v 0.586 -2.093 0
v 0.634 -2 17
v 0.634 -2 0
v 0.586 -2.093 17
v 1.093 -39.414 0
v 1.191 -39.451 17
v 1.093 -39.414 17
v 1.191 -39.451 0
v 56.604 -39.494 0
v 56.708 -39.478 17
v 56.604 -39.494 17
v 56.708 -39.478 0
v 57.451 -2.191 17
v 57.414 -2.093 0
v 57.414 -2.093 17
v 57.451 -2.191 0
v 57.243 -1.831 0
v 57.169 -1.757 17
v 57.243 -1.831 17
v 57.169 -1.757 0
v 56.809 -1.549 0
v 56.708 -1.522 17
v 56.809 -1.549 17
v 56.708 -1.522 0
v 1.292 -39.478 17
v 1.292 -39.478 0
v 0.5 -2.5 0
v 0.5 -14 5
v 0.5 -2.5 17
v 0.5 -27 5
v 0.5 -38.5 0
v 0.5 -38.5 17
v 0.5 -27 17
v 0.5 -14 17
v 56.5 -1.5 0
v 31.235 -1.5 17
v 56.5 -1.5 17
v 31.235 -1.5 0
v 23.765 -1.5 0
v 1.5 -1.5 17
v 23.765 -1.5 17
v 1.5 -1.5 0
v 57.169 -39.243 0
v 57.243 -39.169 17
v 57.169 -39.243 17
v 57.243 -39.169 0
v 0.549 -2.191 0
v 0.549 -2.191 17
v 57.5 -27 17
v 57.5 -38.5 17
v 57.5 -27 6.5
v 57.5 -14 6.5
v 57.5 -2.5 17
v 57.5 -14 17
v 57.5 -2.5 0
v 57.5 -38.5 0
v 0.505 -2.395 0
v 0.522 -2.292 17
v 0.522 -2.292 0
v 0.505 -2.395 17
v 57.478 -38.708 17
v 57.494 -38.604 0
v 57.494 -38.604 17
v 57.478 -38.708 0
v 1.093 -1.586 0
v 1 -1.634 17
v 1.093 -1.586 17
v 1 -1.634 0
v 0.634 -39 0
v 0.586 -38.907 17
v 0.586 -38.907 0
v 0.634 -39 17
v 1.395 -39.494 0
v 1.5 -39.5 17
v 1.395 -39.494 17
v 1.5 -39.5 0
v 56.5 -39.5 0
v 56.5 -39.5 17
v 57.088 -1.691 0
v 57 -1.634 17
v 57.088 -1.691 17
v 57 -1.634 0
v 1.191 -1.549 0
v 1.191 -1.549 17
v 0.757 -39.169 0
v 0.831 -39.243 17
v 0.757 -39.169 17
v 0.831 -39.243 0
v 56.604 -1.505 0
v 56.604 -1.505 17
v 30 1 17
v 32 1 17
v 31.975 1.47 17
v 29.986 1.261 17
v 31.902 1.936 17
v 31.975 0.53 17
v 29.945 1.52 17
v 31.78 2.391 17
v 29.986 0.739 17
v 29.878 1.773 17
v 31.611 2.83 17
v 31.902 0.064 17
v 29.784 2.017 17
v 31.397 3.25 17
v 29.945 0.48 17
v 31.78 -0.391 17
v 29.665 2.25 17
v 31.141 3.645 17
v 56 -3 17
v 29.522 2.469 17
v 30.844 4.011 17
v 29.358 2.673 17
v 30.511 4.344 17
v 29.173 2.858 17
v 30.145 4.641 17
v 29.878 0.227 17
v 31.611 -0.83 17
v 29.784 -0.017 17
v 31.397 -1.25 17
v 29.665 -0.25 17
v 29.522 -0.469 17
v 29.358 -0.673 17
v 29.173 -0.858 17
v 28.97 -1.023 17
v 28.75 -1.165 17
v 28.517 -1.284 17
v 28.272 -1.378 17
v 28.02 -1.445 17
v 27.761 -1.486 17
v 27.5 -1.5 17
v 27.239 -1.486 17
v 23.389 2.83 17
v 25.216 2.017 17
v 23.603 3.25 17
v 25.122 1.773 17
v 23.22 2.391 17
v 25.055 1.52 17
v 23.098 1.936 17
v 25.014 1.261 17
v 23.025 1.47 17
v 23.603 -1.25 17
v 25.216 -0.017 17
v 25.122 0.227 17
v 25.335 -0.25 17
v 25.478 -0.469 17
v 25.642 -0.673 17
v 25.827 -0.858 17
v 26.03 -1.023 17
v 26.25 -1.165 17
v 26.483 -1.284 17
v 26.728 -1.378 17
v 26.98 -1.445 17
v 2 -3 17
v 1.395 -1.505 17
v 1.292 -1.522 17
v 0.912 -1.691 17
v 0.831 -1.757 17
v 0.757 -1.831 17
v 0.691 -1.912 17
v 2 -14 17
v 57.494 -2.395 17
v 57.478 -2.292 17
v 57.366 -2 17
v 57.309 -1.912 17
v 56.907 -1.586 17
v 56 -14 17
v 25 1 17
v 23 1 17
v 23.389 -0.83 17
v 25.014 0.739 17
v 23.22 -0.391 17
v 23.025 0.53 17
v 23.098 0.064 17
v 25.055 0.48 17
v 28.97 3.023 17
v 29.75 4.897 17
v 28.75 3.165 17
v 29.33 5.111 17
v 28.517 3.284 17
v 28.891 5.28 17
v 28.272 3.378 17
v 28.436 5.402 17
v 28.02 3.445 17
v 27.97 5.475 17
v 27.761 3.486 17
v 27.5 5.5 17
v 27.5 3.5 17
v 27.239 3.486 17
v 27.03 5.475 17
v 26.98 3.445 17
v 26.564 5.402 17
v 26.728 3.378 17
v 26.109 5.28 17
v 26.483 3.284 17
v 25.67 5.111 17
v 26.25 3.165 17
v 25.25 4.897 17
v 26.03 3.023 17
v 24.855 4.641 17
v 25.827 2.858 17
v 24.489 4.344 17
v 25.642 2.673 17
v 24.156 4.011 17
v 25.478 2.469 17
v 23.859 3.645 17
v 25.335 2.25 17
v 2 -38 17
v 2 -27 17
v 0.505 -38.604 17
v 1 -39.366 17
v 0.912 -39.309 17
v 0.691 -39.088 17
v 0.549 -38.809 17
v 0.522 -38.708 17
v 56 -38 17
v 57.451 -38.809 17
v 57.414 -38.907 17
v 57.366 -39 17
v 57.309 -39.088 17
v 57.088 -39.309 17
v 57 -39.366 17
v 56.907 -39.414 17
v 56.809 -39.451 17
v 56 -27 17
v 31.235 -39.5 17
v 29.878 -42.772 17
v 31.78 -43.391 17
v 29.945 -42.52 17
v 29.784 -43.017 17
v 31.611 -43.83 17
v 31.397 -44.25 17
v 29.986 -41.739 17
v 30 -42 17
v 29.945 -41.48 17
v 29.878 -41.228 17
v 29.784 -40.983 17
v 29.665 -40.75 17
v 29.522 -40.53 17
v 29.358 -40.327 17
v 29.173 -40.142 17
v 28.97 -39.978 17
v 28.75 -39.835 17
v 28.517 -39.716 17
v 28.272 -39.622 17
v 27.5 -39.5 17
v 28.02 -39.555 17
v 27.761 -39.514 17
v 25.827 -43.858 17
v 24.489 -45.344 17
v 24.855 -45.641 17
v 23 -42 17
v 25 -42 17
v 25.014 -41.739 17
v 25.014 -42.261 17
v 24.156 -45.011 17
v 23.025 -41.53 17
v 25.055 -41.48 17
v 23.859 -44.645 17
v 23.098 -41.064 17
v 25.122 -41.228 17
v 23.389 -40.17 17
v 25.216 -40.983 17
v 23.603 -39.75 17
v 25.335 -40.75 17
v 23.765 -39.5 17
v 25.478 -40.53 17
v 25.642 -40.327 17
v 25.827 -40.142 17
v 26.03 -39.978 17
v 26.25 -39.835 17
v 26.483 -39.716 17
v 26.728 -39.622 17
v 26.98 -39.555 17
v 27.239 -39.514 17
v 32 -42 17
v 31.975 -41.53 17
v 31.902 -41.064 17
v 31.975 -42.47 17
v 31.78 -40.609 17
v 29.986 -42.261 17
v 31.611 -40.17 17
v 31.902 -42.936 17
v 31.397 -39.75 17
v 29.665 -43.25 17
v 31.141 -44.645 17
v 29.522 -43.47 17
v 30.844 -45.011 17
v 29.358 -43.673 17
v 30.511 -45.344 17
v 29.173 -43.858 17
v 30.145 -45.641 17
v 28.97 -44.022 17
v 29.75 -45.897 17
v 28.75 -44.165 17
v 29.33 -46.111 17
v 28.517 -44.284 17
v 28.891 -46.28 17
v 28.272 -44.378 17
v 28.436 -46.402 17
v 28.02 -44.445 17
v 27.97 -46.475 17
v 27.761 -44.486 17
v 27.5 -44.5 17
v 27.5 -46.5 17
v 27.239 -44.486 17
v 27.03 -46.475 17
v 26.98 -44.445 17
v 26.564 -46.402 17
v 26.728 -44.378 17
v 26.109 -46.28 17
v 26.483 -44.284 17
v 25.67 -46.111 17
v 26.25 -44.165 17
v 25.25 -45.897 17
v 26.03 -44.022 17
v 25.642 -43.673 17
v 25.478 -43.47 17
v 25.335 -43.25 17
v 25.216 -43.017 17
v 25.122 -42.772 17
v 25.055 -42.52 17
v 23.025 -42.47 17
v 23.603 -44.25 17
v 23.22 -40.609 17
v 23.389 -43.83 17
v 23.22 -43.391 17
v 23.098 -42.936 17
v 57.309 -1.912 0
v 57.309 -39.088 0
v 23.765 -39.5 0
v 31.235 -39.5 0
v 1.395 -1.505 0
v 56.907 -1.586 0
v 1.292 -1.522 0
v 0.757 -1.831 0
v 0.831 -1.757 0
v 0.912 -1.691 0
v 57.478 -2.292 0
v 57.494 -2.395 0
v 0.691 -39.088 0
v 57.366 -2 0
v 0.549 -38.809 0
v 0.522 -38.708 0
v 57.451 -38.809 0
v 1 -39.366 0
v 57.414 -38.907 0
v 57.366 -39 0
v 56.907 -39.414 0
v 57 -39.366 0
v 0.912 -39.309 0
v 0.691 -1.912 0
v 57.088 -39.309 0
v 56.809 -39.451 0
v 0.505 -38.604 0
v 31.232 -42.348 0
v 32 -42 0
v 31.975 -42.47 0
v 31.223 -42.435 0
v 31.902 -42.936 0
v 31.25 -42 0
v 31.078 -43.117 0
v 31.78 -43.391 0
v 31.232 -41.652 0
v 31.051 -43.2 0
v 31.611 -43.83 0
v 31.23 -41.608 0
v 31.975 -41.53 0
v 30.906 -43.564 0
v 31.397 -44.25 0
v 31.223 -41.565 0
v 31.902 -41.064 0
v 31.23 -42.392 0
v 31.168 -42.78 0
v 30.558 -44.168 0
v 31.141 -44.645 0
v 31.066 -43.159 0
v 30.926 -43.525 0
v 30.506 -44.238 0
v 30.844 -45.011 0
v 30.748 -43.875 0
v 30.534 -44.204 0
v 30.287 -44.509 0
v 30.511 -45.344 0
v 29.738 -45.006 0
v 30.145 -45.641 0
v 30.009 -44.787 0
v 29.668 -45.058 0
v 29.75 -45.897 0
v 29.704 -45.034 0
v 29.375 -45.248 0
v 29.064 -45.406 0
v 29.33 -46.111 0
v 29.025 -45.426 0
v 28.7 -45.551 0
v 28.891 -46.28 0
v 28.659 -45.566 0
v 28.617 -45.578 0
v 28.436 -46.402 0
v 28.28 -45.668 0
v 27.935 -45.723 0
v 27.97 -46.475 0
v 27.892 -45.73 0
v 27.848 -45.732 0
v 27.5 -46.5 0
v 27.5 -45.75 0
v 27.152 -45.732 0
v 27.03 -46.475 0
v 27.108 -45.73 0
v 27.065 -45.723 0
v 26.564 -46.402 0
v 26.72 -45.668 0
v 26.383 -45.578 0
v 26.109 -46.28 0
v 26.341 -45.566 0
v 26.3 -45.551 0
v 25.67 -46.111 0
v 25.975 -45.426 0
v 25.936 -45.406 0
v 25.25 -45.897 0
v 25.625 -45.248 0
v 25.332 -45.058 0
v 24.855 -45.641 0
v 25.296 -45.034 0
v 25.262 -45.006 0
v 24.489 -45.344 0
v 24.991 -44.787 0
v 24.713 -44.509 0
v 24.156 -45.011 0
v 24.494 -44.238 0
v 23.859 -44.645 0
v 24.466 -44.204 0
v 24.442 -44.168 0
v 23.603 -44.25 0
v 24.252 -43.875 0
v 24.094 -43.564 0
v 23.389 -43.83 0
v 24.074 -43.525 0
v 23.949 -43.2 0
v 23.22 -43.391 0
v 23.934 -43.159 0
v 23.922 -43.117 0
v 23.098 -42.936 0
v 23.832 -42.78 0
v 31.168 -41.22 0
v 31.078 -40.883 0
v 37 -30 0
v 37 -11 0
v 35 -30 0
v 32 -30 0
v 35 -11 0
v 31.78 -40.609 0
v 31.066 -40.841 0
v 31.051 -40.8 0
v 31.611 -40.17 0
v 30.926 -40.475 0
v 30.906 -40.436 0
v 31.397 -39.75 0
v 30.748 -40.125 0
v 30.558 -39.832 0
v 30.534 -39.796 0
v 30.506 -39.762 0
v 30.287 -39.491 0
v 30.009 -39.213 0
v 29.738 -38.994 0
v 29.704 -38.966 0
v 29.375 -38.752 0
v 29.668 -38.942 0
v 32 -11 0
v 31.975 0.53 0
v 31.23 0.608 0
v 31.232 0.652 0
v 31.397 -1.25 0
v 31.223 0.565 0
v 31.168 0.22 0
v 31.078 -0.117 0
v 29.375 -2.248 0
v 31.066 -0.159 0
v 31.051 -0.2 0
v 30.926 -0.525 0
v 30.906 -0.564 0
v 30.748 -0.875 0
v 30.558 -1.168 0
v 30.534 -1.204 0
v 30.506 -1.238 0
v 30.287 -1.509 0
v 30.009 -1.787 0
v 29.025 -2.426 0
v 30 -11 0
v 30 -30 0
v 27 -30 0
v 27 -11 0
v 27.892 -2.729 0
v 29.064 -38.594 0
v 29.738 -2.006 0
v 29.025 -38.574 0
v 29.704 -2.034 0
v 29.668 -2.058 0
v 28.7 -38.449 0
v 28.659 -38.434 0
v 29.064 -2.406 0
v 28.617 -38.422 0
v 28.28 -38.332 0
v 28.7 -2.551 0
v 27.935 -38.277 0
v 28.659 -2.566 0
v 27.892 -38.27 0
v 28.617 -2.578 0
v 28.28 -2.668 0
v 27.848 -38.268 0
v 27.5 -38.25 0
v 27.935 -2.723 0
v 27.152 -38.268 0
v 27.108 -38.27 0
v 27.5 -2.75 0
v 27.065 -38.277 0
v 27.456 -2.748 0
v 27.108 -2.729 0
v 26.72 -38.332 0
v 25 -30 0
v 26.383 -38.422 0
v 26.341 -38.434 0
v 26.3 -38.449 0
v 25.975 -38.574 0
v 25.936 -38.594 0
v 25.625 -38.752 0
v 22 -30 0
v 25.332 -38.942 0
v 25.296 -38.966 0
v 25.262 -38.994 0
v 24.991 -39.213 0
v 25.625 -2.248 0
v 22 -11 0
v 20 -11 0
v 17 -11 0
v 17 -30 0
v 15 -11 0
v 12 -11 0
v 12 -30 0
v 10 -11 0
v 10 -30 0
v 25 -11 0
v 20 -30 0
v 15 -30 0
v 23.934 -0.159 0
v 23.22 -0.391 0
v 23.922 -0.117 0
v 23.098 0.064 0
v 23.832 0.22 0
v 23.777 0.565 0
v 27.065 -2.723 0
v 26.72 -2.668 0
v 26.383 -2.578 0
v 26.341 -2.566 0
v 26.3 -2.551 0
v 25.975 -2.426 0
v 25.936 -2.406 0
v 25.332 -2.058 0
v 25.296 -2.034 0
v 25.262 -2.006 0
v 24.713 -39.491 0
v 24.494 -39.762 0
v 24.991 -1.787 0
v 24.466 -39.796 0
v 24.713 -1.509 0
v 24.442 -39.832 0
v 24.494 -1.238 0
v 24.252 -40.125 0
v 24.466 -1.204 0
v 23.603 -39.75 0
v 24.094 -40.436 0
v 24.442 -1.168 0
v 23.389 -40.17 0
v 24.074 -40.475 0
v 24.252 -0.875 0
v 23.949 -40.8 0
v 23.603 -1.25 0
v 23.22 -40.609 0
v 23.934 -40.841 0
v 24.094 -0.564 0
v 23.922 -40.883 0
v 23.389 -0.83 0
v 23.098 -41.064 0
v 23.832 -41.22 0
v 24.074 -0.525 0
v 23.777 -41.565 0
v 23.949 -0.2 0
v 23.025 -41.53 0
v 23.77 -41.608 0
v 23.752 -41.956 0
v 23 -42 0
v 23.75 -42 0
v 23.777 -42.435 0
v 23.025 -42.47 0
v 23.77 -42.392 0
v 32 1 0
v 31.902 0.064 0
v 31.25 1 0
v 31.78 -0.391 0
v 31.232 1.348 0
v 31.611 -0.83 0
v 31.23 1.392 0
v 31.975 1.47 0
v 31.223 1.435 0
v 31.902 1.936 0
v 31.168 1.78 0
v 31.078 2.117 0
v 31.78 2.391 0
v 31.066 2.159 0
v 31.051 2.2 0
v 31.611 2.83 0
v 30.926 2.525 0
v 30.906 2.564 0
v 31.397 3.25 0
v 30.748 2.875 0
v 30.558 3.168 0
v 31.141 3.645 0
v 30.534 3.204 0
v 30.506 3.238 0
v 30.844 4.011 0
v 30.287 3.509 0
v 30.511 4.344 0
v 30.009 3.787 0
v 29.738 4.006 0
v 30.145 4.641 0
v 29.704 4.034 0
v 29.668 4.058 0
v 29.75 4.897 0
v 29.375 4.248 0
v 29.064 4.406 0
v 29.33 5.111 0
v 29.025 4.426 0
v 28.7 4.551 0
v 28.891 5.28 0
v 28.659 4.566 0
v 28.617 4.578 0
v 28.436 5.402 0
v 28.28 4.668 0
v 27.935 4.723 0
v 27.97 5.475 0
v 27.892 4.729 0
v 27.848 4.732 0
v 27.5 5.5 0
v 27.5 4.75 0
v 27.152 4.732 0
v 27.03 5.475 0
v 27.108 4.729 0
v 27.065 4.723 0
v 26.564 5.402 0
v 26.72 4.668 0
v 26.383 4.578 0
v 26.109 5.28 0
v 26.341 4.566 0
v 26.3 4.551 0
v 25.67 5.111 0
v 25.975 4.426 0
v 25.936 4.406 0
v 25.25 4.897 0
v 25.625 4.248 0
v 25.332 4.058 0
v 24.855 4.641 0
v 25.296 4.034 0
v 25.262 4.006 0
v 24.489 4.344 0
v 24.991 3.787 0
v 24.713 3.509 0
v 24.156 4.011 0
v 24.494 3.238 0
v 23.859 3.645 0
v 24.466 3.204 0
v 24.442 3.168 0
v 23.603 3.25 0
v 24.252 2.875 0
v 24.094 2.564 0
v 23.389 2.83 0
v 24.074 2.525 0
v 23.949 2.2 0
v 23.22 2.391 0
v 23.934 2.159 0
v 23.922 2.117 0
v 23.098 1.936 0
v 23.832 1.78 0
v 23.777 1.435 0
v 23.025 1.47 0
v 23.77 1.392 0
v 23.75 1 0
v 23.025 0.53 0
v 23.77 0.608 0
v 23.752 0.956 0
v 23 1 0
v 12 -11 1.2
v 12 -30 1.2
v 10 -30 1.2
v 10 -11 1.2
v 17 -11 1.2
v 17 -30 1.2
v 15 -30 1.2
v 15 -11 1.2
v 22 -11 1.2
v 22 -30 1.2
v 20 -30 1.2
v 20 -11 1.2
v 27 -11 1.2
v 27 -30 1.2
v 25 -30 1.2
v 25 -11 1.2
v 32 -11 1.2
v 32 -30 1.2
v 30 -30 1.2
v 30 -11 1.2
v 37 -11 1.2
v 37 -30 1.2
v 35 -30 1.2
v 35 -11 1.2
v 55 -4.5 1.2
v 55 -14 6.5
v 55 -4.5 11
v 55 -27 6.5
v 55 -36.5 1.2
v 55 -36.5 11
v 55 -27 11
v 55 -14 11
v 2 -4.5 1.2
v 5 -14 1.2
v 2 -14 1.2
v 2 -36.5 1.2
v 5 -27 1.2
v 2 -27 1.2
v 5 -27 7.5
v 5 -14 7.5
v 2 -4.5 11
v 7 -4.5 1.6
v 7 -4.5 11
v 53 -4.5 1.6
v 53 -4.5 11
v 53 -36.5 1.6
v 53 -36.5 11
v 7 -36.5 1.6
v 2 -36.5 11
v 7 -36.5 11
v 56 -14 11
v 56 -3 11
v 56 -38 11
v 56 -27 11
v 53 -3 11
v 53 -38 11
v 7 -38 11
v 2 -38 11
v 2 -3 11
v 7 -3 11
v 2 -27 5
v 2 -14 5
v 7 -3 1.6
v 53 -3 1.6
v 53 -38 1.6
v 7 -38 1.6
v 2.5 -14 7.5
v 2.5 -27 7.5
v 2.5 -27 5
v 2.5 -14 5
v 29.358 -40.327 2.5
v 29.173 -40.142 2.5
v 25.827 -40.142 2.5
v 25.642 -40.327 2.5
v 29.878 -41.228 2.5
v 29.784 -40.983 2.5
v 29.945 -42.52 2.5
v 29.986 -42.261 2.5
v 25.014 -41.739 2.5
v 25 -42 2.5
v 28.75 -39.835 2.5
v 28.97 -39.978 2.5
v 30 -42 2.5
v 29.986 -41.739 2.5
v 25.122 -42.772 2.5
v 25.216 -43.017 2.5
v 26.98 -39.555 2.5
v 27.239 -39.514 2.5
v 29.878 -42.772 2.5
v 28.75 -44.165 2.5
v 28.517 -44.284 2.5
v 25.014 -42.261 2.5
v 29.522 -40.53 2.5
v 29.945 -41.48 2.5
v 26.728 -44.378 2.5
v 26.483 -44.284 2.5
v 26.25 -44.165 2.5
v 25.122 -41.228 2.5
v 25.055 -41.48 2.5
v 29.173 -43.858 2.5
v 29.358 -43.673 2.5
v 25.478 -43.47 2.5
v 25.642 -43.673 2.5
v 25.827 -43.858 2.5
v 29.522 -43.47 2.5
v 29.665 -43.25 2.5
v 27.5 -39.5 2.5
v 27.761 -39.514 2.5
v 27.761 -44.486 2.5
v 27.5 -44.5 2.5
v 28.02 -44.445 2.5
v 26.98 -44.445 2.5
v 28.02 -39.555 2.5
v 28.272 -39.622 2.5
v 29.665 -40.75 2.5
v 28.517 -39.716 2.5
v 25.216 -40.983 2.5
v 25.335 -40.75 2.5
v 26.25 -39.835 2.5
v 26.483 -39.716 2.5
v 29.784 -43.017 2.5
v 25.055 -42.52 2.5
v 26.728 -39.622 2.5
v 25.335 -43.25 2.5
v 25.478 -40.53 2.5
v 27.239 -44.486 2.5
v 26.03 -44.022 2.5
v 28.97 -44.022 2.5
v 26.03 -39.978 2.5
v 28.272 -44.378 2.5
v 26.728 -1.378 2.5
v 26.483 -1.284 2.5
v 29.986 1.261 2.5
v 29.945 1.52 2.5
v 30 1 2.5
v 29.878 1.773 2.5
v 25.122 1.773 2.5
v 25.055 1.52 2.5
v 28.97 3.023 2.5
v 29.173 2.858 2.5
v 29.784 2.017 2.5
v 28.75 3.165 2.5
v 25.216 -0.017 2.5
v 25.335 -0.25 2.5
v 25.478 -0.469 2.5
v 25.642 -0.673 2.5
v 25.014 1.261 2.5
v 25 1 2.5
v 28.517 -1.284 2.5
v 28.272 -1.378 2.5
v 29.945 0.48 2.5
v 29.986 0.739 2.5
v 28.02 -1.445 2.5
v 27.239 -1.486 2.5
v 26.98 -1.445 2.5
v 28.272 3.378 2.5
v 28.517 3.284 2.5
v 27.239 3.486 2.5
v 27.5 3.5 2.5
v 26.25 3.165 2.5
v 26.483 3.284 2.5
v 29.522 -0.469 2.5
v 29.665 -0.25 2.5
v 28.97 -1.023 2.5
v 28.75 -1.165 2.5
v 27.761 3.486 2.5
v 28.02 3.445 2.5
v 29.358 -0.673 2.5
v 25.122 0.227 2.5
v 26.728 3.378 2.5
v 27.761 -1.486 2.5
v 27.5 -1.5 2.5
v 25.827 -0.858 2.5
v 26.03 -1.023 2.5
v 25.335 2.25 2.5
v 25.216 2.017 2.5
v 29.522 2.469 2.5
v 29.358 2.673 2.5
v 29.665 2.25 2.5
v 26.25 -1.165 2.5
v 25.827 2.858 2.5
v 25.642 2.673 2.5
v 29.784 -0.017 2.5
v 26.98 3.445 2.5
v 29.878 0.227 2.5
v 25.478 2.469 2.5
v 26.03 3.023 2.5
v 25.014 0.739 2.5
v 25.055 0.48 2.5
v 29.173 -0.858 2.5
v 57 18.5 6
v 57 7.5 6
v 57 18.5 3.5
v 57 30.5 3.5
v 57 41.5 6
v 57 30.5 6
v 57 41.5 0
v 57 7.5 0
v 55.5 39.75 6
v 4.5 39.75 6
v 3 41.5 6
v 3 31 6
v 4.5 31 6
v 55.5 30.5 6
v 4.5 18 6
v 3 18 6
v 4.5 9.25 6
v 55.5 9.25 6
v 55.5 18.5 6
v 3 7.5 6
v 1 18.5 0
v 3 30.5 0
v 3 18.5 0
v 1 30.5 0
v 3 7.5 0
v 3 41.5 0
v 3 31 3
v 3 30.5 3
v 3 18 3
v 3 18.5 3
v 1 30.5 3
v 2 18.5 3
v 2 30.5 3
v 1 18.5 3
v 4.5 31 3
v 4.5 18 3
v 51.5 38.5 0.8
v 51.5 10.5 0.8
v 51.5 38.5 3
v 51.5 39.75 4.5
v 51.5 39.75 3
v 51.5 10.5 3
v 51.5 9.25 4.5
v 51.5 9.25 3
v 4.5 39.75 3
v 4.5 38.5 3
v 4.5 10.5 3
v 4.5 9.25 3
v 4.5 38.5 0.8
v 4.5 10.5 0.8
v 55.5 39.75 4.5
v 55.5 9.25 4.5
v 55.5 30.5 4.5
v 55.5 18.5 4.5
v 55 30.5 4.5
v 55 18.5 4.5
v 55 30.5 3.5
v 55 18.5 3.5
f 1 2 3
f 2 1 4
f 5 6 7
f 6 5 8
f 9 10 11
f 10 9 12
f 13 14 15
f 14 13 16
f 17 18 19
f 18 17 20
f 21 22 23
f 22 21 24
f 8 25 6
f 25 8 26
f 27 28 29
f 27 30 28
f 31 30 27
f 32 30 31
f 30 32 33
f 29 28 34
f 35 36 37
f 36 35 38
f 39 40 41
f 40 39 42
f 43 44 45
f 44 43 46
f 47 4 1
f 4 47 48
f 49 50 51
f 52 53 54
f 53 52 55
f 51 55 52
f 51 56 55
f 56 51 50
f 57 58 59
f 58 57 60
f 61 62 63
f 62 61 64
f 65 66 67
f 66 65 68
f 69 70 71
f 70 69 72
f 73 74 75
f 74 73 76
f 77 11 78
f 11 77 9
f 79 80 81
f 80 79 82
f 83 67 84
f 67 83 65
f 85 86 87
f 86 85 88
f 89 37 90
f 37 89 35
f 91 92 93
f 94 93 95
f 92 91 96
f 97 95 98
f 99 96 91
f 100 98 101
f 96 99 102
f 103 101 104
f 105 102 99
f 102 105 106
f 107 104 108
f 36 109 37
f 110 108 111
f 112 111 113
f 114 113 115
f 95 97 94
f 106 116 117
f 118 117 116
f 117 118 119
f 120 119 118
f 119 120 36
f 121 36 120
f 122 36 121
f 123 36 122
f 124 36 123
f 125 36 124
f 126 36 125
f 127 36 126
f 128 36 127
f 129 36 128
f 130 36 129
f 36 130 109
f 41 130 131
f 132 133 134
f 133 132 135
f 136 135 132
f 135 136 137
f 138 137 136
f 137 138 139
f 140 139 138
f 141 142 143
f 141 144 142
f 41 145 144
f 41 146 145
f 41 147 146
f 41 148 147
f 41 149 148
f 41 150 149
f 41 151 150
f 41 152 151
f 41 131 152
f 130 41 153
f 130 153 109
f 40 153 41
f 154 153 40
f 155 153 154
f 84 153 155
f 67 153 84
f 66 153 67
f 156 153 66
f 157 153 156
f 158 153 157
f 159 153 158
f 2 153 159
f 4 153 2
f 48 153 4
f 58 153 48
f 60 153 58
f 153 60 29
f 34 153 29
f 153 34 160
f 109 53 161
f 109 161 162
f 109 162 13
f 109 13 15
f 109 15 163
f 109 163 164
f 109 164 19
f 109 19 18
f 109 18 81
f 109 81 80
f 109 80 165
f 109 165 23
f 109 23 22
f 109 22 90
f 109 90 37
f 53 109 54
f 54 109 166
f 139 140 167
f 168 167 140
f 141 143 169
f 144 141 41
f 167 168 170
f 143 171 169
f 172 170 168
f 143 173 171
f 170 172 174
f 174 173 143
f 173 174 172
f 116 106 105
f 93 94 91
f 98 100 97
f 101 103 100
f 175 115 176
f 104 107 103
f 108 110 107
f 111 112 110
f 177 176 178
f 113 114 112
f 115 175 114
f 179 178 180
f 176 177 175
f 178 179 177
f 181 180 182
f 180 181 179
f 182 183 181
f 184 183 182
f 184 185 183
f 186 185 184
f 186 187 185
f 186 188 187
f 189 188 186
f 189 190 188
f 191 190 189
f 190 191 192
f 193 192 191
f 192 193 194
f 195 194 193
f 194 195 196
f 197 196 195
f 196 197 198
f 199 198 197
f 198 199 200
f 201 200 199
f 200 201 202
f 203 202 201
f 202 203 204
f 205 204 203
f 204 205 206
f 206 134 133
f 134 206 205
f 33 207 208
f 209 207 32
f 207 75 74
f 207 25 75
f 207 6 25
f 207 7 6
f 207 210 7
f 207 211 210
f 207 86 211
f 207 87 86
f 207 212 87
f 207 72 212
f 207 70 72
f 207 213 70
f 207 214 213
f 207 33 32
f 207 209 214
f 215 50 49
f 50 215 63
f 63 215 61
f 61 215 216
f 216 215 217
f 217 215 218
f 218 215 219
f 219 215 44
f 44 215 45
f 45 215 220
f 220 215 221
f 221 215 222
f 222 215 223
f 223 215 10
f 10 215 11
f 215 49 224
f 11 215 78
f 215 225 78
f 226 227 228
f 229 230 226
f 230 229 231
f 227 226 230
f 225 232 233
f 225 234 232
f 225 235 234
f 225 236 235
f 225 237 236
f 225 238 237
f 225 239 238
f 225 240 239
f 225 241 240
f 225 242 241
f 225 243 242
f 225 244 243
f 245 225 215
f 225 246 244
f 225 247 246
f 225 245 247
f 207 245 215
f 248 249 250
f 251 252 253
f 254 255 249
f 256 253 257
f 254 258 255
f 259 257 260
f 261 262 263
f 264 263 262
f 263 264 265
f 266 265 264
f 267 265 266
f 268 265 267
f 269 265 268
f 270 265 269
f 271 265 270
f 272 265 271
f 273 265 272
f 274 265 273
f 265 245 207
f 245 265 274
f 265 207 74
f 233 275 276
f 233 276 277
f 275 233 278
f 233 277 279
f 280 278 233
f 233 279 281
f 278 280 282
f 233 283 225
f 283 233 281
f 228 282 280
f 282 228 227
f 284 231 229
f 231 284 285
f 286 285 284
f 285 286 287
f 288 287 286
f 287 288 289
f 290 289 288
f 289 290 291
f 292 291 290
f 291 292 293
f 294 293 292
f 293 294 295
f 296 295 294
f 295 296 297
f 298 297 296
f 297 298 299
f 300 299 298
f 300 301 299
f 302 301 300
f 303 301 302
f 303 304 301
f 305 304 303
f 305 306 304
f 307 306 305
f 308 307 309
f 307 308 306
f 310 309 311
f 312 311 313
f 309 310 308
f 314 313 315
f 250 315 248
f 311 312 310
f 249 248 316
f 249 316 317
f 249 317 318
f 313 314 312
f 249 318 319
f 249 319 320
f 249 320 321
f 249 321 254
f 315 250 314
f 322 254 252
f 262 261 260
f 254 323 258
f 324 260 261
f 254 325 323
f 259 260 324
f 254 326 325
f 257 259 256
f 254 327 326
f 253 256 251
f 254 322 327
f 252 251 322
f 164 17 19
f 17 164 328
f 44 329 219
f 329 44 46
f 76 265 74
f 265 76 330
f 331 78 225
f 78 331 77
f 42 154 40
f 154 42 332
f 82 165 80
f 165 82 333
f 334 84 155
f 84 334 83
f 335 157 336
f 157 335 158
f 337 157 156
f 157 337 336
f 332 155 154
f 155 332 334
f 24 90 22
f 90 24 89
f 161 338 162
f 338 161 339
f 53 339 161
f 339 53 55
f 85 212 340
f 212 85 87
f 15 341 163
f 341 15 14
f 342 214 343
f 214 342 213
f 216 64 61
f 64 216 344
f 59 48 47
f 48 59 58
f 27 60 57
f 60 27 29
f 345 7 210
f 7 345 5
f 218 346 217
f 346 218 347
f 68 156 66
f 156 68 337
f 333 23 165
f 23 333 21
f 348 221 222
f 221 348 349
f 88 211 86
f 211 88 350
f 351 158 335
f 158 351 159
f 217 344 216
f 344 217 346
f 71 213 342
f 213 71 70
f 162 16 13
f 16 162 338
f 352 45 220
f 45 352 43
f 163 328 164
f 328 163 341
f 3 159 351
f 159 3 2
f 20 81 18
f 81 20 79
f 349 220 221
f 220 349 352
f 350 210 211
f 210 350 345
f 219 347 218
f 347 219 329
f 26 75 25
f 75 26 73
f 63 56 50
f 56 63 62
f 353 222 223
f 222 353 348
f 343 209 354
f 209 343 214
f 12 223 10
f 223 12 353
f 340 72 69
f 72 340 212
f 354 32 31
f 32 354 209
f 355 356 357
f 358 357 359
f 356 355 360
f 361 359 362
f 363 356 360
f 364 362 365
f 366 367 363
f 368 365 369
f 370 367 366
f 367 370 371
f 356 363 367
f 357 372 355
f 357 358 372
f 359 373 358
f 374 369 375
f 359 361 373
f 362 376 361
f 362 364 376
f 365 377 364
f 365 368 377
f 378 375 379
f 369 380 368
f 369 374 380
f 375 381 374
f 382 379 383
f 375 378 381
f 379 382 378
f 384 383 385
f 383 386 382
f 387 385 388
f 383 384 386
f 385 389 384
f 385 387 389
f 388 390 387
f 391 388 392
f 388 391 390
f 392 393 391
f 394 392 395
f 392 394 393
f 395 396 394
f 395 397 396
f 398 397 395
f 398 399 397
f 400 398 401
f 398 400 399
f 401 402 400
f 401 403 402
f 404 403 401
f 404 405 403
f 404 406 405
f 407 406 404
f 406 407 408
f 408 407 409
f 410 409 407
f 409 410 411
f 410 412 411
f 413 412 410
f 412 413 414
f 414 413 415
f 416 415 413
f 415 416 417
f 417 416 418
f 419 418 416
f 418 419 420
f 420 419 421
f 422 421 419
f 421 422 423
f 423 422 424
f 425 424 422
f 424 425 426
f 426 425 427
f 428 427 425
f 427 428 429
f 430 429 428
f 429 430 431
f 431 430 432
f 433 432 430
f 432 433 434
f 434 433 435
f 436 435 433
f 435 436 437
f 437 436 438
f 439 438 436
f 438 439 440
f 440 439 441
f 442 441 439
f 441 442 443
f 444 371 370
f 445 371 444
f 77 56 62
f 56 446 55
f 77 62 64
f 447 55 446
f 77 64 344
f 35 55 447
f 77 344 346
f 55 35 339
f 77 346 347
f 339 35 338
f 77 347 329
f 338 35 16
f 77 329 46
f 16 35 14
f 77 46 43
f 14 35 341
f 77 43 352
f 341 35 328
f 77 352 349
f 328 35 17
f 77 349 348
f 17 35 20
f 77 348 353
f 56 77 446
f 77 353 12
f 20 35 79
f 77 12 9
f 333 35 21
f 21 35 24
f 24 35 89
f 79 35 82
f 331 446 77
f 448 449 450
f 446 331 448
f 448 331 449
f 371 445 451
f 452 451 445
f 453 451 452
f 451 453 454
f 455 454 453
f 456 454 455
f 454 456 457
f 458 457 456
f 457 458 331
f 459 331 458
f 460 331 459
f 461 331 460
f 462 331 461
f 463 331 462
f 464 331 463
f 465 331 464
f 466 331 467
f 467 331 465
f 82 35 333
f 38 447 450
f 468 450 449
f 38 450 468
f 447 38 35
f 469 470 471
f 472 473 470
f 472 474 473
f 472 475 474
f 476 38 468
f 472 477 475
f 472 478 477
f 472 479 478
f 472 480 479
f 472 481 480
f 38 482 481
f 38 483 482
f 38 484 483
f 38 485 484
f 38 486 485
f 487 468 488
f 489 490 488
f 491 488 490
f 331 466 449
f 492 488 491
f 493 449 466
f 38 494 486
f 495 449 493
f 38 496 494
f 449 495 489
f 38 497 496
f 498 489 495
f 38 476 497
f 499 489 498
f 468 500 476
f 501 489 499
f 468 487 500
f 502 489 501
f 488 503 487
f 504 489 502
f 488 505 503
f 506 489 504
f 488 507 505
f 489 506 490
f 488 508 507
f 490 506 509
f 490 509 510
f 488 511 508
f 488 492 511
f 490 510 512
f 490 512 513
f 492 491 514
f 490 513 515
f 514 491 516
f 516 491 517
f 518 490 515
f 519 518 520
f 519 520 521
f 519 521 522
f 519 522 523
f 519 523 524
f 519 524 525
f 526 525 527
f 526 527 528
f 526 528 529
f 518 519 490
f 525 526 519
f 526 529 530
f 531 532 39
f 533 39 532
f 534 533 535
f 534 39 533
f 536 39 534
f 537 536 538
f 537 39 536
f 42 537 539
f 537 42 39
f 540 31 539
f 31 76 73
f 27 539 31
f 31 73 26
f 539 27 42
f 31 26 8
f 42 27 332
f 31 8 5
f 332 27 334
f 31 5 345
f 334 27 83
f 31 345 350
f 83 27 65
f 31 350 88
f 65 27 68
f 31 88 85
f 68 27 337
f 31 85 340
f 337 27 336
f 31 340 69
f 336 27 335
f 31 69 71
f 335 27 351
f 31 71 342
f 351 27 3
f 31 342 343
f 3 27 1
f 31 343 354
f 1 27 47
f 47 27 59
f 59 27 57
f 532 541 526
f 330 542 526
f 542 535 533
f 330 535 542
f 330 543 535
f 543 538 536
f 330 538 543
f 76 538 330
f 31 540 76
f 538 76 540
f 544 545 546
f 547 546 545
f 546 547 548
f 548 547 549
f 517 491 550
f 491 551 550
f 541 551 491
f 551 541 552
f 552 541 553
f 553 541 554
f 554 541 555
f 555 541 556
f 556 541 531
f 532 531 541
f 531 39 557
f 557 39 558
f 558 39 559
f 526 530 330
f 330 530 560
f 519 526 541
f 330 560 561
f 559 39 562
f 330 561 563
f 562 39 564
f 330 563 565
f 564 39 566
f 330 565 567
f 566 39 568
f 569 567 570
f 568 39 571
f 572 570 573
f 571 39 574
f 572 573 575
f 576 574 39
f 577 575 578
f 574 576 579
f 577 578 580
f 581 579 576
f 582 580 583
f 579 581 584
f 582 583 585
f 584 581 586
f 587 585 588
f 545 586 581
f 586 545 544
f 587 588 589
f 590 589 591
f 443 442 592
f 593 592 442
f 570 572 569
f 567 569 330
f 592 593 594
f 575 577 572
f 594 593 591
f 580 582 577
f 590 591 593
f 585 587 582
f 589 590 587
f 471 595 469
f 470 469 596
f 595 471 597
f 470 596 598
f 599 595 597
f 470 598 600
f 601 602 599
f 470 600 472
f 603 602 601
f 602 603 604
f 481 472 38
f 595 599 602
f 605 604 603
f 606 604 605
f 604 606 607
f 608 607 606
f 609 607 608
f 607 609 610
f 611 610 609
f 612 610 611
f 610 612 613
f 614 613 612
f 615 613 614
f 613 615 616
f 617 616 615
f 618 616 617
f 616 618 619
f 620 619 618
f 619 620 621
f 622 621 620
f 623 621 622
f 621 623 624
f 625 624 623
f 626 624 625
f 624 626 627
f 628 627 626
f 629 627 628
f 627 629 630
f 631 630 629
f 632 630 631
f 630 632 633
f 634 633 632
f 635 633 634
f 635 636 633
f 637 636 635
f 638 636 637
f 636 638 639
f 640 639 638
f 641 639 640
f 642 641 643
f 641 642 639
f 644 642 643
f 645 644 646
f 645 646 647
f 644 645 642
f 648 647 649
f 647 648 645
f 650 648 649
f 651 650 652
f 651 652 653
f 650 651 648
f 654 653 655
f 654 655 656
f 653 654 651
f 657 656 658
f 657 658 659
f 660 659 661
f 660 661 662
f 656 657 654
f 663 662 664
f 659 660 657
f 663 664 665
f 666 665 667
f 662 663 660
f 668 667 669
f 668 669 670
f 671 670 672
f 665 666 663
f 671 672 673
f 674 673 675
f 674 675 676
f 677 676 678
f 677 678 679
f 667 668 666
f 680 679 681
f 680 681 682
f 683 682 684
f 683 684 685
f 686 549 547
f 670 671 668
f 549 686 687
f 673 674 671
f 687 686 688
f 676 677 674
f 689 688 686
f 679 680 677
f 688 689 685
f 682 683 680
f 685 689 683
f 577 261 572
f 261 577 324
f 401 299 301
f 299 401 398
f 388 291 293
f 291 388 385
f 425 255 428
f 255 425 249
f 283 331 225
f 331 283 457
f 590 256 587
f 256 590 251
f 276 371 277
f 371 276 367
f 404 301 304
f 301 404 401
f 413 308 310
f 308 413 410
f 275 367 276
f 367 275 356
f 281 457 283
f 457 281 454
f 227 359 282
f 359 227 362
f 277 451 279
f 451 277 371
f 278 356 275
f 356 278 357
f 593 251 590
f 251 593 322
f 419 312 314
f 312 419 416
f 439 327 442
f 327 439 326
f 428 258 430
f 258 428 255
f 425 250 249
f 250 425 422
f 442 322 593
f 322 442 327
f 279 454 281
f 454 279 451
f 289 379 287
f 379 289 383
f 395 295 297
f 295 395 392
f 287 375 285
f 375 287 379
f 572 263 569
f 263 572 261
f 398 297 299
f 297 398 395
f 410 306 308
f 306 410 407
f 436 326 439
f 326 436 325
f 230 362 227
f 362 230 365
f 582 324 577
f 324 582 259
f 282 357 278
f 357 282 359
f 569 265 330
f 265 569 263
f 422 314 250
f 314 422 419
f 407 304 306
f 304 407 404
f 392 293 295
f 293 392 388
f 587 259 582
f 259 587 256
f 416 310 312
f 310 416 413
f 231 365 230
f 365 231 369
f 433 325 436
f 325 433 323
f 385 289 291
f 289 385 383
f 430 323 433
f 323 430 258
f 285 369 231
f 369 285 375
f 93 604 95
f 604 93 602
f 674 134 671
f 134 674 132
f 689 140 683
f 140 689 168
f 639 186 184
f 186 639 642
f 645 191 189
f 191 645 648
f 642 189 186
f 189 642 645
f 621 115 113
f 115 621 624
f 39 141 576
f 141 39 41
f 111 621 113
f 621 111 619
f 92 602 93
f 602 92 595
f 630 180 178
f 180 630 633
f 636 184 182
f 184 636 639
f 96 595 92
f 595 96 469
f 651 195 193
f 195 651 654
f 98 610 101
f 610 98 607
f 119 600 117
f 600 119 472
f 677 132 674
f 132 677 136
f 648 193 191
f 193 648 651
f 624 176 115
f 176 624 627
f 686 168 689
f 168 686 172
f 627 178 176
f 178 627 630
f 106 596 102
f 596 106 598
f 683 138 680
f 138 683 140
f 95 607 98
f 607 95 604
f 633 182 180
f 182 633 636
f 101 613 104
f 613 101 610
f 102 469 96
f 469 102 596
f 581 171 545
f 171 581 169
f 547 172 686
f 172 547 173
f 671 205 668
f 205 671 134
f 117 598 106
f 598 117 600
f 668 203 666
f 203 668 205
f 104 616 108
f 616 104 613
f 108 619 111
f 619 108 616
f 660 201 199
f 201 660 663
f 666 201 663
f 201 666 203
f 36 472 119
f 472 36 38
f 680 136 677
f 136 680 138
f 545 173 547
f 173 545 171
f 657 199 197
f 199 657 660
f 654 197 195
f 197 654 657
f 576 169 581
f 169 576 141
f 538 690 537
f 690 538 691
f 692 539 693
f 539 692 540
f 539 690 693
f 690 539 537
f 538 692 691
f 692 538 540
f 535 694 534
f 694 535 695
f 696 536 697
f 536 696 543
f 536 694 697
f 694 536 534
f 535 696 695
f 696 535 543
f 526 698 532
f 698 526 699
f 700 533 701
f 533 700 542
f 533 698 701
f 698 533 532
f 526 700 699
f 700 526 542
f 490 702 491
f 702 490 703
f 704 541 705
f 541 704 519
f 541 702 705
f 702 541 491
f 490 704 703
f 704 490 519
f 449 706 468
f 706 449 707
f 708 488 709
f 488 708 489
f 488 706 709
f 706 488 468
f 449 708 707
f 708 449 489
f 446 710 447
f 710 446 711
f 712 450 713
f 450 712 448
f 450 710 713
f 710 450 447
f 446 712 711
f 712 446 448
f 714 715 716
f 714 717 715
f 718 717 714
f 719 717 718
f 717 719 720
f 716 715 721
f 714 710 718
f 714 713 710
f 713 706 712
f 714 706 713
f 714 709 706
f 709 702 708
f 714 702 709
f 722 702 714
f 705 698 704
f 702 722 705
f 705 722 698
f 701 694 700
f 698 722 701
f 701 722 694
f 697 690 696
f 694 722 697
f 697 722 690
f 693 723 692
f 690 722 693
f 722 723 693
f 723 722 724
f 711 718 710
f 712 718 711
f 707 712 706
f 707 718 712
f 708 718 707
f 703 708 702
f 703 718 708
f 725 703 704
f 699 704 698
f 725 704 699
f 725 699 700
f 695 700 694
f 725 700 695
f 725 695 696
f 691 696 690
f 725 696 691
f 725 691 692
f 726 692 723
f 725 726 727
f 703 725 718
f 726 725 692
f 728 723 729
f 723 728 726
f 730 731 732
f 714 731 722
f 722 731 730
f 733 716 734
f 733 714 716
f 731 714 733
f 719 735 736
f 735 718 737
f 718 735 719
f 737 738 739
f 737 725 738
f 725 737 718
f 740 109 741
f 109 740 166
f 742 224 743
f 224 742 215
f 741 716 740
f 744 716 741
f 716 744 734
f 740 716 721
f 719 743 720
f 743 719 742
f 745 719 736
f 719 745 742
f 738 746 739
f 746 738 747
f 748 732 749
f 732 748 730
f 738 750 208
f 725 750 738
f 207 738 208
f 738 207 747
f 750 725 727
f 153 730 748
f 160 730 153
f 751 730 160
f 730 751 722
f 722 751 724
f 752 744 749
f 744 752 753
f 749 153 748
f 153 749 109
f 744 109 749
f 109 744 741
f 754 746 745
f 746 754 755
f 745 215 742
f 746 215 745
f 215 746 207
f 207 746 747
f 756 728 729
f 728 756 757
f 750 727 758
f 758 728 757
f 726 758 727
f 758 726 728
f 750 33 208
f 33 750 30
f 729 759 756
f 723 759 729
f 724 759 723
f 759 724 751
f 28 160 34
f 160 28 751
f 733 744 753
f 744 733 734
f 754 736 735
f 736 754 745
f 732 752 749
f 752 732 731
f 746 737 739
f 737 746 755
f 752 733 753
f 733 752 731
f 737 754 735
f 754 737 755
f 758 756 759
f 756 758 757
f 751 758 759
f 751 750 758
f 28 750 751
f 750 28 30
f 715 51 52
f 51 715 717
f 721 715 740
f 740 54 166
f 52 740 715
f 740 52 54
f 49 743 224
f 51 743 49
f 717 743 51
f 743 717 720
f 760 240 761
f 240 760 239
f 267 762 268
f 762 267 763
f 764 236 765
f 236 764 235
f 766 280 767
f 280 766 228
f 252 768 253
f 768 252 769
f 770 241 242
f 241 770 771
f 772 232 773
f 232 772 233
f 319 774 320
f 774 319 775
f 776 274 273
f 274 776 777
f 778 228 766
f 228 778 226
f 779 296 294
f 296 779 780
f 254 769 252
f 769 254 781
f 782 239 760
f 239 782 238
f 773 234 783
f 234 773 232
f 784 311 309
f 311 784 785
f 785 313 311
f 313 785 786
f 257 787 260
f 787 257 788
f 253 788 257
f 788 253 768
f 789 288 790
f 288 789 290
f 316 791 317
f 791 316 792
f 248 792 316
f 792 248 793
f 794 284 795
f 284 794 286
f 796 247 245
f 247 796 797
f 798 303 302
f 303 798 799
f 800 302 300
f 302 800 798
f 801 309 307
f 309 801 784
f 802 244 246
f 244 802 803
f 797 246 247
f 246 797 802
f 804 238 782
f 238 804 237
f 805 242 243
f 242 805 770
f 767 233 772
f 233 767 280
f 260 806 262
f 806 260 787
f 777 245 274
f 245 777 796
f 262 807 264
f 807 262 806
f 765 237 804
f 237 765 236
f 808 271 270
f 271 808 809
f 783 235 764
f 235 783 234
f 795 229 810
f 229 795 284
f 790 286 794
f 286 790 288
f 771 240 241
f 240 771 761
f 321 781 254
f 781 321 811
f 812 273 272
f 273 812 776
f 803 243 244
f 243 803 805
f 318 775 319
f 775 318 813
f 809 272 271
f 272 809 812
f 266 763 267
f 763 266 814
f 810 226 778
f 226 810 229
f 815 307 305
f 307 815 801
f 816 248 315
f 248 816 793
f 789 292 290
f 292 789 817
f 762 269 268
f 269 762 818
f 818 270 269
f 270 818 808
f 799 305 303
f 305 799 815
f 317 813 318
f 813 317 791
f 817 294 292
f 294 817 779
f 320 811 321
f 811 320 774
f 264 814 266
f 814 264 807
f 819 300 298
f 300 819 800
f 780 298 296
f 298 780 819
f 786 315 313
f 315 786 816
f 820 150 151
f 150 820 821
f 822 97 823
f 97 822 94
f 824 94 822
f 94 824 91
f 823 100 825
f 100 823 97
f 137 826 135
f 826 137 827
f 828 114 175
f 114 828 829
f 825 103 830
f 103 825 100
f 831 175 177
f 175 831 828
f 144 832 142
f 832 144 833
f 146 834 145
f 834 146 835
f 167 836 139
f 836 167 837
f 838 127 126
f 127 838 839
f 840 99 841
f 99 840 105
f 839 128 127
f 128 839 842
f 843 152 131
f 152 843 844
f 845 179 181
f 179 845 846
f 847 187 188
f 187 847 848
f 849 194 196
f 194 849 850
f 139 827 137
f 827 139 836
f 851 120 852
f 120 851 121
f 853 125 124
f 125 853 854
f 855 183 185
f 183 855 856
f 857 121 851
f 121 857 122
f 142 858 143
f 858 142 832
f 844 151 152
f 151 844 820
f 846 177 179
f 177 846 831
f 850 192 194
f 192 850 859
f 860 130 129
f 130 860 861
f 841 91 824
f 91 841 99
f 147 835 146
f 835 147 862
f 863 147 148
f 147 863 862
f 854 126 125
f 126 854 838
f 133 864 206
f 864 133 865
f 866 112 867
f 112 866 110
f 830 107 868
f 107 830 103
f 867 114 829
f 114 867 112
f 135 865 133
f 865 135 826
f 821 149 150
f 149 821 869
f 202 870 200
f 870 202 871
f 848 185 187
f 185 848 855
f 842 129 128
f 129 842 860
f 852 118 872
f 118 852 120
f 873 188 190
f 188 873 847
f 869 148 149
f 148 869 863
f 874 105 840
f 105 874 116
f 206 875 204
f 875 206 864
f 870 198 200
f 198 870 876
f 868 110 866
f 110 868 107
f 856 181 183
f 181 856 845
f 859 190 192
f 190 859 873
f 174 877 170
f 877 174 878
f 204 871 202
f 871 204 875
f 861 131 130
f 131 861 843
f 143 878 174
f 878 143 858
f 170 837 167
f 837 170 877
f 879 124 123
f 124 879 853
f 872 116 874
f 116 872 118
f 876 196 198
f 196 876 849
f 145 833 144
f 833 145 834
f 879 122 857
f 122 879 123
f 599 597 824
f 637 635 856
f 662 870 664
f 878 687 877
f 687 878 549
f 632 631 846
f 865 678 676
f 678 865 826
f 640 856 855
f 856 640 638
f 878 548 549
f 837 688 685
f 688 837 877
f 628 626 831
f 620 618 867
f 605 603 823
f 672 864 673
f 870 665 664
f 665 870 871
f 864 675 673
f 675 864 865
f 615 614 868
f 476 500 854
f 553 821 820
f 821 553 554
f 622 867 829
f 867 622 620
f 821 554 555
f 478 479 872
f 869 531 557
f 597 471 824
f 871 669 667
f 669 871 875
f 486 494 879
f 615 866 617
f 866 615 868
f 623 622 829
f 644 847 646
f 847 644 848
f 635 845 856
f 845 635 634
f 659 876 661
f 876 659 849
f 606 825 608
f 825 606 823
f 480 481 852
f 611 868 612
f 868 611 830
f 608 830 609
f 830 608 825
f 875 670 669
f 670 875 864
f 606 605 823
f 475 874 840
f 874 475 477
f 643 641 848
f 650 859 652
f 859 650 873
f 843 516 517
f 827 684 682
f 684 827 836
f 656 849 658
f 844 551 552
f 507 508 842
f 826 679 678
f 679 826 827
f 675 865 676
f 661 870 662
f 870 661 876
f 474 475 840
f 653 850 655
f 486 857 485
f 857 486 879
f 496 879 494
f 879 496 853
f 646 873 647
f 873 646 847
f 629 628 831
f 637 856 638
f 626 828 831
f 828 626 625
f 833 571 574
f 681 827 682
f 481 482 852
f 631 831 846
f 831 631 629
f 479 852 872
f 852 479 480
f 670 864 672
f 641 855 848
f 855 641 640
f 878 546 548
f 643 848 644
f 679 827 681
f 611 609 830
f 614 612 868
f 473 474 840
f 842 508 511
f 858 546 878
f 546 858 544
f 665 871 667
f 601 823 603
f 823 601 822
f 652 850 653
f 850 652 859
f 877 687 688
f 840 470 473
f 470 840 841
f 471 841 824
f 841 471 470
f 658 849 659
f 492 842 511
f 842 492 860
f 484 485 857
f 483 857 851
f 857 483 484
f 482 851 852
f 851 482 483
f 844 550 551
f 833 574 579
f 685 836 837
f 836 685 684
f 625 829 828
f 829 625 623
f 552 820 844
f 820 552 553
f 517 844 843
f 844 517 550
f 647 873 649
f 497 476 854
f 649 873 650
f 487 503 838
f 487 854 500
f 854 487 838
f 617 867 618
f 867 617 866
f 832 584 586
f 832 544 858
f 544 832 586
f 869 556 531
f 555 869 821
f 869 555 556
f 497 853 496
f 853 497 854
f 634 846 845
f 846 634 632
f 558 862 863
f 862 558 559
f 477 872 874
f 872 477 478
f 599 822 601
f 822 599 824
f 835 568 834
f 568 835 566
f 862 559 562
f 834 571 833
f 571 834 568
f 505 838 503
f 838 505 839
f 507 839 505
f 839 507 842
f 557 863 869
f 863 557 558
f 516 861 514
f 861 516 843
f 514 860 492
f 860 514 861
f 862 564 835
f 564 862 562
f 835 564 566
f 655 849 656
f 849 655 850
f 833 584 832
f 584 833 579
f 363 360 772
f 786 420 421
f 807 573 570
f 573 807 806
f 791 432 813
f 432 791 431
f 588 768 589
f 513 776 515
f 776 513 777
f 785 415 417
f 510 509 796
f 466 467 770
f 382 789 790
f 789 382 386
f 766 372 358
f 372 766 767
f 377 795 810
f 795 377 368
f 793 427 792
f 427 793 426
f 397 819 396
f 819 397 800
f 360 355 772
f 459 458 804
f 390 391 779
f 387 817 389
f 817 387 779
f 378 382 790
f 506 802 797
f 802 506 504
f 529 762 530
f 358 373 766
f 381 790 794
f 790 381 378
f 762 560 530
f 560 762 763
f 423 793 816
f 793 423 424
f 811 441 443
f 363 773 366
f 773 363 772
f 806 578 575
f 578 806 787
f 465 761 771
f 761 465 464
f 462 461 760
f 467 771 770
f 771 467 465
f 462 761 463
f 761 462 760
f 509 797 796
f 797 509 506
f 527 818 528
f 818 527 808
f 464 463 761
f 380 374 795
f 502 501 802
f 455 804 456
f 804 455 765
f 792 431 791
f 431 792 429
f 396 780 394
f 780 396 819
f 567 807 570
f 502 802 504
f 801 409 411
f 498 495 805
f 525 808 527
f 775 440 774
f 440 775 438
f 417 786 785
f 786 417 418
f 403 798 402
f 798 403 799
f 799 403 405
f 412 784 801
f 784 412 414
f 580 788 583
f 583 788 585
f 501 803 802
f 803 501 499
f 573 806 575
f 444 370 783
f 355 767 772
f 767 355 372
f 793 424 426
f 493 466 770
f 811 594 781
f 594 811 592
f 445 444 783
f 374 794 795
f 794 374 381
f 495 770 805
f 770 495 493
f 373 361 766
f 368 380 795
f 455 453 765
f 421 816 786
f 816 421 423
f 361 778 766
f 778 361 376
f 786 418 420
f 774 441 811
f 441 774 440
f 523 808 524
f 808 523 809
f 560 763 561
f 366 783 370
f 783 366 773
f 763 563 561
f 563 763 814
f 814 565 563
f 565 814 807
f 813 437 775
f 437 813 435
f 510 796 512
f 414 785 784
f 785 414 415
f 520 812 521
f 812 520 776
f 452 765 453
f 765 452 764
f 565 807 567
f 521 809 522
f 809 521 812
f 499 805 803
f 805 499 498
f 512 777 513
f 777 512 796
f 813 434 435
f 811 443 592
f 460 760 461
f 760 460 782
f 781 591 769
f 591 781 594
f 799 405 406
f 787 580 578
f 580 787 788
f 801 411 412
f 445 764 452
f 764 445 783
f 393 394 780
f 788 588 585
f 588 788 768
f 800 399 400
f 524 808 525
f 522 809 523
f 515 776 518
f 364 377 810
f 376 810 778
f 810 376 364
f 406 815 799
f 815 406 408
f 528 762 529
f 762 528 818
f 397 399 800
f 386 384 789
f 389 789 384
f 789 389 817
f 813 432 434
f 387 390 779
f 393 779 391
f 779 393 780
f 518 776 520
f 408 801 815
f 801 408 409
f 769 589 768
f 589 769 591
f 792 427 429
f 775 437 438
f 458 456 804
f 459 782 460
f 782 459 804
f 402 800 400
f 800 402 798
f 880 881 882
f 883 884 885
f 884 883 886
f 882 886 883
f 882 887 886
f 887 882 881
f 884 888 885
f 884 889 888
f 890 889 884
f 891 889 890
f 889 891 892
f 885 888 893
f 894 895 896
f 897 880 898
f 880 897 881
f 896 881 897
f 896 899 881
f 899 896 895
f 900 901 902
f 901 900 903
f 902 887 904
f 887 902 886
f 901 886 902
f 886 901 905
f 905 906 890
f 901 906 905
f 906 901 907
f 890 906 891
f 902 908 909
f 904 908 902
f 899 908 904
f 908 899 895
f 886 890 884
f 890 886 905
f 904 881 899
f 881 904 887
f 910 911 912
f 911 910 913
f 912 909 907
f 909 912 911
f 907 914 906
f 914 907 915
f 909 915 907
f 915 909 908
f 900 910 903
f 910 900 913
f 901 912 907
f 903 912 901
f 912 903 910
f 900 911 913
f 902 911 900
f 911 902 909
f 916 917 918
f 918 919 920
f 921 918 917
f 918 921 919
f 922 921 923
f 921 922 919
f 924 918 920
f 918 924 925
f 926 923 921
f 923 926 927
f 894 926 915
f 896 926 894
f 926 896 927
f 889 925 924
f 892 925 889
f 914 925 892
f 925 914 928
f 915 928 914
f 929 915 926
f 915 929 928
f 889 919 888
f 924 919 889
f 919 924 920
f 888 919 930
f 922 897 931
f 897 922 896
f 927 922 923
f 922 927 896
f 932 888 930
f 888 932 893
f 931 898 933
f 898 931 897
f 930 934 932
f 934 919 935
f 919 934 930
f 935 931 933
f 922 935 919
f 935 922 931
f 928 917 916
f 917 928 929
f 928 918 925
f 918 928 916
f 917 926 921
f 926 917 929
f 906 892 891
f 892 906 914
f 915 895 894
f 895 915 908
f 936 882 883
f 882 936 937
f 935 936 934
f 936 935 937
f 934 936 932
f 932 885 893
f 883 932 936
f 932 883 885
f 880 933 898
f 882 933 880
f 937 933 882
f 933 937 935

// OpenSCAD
/* Designed by A.J. v.d. Werken, Oct 2021    */
/* Case for WEMOS D1 ESP8266 incl shield     */  
/* Works with WATERLEZER (ESPHOME)           */

$fn=60;

module waterlezer_case_bottom()
{
    difference()
    {
        // solid
        union()
        {
            translate( [0.5,0.5,0]) cube( [54, 34, 6] ); 
            translate( [-1.5,11.5,0] ) cube( [3,12,3]);  
        }
        // holes
        translate( [2,2.25,3] ) cube( [47, 30.5, 12] );
        translate( [2,2.25,4.5] ) cube( [51, 30.5, 12] );
        translate( [2,3.5,0.8] ) cube( [47, 28, 12] );
        translate( [-0.5,11,3] ) cube( [3,13,8]);
        translate( [52.5,11.5,3.5] ) cube( [3,12,9]);   
    
        
    }
}

module waterlezer_case_top()
{
    difference()
    {
        // solid
        union()
        {
            hull()
            {
                translate([1.5,1.5,0]) cylinder( d=2, h=17 );
                translate([56.5,1.5,0]) cylinder( d=2, h=17 );            
                translate([56.5,37.5,0]) cylinder( d=2, h=17 );
                translate([1.5,37.5,0]) cylinder( d=2, h=17 );
            }
            translate([27.5,-2,0]) cylinder( d=9, h=17 );
            translate([27.5,41,0]) cylinder( d=9, h=17 );
           
        }
        // holes
        translate( [5,3.5,1.2] ) cube( [50, 32, 20] );
        translate( [2,2,11] ) cube( [54, 35, 20] );
        translate( [2,3.5,7.5] ) cube( [5.5, 32, 20] );

        translate( [2,3.5,1.2] ) cube( [5.5, 9.5, 20] );
        translate( [2,26,1.2] ) cube( [5.5, 9.5, 20] );
        
        translate( [7,2,7.5] ) cube( [46, 35, 20] );
        translate( [7,2,1.6] ) cube( [46, 35, 20] );
 
        
        
        translate( [-0.5,13,5] ) cube( [3,13,20]);
        translate( [54.5,13,6.5] ) cube( [4,13,20]);      
        translate([27.5,-2,-0.5]) cylinder( d=5, h=20 ); 
        translate([27.5,41,-0.5]) cylinder( d=5, h=20 ); 
        translate([27.5,41,-0.5]) cylinder( d1=8, d2=5, h=3 ); 
        translate([27.5,-2,-0.5]) cylinder( d1=8, d2=5, h=3 ); 
        
        for (i=[0:5], x=10 + i*5) 
        {
            translate( [x,10,-0.5] ) cube( [2,19,3]);            
        }

   }
}

translate( [0,-40,0] ) 
    waterlezer_case_top();
translate( [2.5,7,0] ) 
    waterlezer_case_bottom();
